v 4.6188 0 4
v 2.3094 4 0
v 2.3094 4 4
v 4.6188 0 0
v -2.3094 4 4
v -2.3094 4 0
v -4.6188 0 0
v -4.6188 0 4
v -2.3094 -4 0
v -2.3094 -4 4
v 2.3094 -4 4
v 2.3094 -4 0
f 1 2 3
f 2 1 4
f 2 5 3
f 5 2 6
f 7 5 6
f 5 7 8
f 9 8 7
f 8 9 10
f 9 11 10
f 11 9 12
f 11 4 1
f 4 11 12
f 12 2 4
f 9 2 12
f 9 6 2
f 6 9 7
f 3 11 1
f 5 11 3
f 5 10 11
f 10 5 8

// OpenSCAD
// -*- mode: SCAD ; c-file-style: "ellemtel" ; coding: utf-8 -*-
//
// Buchse fuer M3, grob, 10 mm
//
// (c) 2017 Roland Sieker <ospalh@gmail.com>
// Licence: CC-0 4.0

d_i = 8;
r_a = d_i/sqrt(3);
echo("r_a", r_a);
h = 4;
$fn=6;

cylinder(r=r_a, h=h);
